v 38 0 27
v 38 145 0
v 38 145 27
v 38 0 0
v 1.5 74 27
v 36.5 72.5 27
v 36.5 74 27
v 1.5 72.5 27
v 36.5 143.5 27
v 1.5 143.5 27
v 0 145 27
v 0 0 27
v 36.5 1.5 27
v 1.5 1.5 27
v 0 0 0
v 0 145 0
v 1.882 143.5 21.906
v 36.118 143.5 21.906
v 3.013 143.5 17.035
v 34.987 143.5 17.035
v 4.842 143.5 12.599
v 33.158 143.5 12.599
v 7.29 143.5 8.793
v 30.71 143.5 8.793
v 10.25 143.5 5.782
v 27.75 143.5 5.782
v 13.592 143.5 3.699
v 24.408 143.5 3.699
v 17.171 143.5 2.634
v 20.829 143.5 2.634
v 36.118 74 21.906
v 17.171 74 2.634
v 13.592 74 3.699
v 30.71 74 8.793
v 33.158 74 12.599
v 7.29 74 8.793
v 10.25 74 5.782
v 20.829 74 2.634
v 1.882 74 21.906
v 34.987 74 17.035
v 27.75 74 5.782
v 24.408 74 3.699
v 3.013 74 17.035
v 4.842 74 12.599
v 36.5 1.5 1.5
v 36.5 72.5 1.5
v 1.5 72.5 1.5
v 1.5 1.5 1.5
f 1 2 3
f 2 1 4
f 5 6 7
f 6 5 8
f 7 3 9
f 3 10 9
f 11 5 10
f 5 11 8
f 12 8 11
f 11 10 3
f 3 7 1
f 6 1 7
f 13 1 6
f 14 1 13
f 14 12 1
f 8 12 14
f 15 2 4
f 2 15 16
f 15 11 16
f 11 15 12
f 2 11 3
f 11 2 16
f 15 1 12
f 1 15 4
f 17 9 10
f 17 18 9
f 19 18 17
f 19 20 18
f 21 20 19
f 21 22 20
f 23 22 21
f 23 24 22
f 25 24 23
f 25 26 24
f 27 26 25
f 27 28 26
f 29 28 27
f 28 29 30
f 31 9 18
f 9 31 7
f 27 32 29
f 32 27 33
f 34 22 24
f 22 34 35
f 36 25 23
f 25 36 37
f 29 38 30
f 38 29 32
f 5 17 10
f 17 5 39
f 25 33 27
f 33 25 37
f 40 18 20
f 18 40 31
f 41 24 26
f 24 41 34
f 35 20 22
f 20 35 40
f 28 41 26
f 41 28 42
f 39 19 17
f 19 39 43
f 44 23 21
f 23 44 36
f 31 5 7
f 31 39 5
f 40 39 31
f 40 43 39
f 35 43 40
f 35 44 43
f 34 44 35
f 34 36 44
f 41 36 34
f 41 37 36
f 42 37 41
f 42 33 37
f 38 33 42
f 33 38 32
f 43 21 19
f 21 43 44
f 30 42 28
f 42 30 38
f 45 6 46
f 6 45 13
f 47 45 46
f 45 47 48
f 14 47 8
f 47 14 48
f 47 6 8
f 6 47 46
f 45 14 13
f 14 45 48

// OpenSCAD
/* [Box Parameters] */


boxWidth = 38;
boxDepth = 145;
boxHeight = 27;
cylinderHeight = 35;
wallThick = 1.5;


difference() {
    cube([boxWidth,boxDepth,boxHeight]);
    color("blue") scale([1,1,1.4]) translate([boxWidth/2, boxDepth-wallThick , boxHeight/1.4])
    rotate ([90, 0,0]) cylinder(h=boxDepth/2-wallThick*2, d=boxWidth-wallThick*2);
    
color("pink") translate([wallThick, wallThick, wallThick]) cube([boxWidth-(wallThick*2),boxDepth/2-wallThick,boxHeight]);
}
color("red") translate([0, boxDepth/4*2, 0]) cube([boxWidth,wallThick,boxHeight]);
